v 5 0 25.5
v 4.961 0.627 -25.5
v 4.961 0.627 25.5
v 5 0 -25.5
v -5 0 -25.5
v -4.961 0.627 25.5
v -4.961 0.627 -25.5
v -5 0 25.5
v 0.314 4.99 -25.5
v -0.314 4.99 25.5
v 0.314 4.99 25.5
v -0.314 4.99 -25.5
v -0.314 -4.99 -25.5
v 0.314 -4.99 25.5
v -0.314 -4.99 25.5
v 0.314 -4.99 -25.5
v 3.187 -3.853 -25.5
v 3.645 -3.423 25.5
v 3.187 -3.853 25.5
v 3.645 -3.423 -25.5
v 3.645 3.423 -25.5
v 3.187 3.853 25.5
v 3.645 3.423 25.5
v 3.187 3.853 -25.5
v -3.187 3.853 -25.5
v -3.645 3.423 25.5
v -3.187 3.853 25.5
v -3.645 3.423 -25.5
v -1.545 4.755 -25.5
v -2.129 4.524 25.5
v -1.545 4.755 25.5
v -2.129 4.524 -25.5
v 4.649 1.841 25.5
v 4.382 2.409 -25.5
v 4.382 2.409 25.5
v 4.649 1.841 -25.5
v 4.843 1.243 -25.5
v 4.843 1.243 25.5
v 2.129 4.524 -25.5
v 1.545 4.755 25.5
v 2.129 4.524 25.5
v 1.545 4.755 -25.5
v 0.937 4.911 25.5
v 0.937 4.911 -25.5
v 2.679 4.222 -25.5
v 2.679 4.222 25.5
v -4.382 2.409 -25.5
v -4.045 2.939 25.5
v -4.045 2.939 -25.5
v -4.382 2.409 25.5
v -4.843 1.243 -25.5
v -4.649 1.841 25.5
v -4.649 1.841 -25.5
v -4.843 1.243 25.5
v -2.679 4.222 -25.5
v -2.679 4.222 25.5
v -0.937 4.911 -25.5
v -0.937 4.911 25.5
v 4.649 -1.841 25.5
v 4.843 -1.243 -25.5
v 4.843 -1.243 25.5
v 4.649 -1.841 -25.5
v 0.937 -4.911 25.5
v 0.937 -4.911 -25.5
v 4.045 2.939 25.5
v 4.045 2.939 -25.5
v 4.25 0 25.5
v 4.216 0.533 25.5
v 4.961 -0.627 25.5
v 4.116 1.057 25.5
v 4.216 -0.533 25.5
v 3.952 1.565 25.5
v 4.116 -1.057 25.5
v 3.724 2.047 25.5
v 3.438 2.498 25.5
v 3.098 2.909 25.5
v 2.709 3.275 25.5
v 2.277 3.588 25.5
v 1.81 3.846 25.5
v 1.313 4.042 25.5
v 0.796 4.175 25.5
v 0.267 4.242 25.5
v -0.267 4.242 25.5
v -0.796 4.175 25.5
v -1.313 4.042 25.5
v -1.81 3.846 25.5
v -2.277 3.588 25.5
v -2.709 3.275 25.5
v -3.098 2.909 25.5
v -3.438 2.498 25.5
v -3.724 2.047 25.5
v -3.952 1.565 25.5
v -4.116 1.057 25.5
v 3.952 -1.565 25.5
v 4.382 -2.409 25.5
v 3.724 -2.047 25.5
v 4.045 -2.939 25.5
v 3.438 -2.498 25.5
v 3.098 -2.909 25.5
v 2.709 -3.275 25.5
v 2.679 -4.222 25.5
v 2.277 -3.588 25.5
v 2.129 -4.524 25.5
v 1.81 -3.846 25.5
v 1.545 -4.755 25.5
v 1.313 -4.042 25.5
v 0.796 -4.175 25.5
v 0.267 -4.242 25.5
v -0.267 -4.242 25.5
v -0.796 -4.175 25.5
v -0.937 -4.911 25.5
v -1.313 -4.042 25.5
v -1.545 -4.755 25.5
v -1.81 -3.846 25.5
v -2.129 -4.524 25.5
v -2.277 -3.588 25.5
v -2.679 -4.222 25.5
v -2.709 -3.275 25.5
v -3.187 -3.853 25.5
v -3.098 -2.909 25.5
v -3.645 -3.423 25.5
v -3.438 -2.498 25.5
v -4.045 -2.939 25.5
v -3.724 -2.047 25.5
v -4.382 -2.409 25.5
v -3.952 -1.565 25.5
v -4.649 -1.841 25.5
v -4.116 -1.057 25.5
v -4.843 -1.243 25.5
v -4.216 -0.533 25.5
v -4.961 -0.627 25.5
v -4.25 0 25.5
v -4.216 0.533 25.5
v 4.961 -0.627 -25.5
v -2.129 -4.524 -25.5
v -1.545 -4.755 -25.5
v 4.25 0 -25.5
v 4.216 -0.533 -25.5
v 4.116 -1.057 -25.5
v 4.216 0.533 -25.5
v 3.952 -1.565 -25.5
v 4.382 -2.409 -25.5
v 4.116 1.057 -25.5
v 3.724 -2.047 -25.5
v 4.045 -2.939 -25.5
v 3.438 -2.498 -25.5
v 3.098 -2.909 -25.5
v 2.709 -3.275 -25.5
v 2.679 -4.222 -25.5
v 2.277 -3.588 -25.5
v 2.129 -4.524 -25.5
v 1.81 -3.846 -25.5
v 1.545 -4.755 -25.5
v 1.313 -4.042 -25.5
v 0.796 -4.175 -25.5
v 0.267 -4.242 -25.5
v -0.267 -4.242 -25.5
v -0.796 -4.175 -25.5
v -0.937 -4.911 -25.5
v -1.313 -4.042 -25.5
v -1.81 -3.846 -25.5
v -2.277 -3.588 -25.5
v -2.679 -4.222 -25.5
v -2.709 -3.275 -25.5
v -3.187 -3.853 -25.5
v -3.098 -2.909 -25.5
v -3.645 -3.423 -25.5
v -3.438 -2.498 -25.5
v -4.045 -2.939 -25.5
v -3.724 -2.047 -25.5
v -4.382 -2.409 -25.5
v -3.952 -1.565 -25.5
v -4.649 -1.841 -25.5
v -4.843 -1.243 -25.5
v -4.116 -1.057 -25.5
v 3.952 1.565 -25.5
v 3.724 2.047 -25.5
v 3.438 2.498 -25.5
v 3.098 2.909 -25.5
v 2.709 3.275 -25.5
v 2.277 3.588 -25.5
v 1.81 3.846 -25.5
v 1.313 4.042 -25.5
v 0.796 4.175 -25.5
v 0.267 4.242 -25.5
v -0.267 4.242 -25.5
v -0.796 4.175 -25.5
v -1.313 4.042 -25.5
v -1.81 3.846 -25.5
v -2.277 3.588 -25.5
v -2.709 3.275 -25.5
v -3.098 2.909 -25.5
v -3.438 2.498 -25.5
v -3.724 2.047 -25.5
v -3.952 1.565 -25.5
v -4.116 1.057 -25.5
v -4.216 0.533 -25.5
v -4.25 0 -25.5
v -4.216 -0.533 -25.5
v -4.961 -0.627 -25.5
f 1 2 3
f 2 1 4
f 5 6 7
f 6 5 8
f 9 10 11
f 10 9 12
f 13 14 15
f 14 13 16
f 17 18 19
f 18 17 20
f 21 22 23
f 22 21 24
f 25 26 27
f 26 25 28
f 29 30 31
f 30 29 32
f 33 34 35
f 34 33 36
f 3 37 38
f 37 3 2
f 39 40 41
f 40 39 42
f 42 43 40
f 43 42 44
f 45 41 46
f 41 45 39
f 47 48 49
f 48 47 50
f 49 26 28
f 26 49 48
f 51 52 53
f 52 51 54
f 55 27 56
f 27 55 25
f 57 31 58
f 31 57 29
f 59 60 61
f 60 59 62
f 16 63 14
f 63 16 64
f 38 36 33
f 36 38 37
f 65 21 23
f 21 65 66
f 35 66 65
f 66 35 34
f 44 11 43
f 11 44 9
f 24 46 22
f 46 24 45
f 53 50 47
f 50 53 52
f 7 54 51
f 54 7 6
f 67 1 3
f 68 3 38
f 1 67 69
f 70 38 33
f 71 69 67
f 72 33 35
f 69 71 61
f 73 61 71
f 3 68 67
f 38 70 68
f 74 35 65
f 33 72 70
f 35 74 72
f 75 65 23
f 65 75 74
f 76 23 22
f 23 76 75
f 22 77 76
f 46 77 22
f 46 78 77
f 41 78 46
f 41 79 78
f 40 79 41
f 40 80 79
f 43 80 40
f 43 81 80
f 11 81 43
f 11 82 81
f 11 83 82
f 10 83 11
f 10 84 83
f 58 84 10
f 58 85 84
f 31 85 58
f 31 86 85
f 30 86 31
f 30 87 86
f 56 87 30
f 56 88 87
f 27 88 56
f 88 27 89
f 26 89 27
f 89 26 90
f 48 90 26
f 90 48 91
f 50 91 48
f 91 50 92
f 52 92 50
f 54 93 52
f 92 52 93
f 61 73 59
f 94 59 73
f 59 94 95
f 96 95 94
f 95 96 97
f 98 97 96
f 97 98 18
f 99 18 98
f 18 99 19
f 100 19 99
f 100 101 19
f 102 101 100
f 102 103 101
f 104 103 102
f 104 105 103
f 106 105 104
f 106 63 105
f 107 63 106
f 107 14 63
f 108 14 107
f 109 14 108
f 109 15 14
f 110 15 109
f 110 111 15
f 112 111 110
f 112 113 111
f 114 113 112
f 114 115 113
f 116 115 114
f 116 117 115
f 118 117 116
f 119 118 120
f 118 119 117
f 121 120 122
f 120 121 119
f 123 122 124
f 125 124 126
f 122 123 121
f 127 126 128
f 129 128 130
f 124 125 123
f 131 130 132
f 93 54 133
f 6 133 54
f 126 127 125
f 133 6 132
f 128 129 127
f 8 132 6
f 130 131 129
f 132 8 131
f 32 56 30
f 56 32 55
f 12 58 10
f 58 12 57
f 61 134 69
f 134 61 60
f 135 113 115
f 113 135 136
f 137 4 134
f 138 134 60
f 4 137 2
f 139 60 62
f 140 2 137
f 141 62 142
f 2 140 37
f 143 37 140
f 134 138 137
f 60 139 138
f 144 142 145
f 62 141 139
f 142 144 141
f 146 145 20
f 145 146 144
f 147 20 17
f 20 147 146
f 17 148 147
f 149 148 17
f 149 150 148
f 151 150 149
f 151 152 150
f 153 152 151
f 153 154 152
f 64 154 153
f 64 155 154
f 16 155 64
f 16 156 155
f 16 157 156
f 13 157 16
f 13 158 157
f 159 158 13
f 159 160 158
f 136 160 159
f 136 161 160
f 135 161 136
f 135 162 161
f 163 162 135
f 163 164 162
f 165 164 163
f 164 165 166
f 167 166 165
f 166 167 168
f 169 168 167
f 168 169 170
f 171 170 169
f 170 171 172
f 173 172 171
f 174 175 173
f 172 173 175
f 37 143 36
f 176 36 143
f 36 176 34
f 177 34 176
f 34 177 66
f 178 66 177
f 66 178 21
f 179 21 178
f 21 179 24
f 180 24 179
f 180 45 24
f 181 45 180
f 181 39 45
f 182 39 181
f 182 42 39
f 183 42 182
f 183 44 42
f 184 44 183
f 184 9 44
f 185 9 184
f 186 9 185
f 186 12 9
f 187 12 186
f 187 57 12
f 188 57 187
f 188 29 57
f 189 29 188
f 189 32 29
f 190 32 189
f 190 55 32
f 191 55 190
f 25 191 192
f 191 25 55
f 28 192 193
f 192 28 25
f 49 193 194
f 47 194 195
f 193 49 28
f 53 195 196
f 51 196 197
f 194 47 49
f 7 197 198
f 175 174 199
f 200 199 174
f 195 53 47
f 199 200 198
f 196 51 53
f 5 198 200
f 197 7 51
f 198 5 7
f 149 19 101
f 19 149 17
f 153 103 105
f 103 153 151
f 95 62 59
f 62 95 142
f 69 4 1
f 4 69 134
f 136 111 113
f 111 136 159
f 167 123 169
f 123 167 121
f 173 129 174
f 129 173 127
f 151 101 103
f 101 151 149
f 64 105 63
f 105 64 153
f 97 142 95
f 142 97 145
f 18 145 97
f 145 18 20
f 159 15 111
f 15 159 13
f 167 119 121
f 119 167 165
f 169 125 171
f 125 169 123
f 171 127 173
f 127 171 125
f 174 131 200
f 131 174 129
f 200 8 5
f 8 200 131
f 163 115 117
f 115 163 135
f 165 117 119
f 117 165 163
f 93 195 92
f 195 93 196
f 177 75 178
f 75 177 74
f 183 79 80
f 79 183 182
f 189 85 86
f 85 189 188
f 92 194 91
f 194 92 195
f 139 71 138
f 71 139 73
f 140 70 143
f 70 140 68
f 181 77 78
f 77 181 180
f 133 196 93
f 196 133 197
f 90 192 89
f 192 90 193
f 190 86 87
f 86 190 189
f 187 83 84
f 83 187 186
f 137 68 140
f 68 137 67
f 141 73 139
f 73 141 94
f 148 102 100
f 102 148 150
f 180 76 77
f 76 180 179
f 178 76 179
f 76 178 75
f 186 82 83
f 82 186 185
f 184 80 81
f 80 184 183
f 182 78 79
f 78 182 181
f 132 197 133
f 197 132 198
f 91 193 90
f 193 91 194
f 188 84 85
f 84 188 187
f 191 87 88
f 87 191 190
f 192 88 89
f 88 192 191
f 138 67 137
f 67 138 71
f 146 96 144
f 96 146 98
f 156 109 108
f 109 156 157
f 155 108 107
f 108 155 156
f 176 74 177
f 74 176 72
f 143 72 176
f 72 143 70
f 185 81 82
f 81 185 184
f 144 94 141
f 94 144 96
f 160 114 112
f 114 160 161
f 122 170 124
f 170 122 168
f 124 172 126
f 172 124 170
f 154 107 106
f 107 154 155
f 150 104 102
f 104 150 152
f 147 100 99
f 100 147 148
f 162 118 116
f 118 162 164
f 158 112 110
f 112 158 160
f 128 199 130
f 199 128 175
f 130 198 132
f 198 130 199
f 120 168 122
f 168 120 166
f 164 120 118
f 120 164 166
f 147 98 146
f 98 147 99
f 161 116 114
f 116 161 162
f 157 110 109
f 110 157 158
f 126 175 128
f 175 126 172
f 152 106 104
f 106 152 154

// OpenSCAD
$fn = 50;


difference() {
	union() {
		translate(v = [0, 0, -25.5000000000]) {
			cylinder(h = 51, r = 5.0000000000);
		}
	}
	union() {
		translate(v = [0, 0, -100.0000000000]) {
			cylinder(h = 200, r = 4.2500000000);
		}
	}
}
